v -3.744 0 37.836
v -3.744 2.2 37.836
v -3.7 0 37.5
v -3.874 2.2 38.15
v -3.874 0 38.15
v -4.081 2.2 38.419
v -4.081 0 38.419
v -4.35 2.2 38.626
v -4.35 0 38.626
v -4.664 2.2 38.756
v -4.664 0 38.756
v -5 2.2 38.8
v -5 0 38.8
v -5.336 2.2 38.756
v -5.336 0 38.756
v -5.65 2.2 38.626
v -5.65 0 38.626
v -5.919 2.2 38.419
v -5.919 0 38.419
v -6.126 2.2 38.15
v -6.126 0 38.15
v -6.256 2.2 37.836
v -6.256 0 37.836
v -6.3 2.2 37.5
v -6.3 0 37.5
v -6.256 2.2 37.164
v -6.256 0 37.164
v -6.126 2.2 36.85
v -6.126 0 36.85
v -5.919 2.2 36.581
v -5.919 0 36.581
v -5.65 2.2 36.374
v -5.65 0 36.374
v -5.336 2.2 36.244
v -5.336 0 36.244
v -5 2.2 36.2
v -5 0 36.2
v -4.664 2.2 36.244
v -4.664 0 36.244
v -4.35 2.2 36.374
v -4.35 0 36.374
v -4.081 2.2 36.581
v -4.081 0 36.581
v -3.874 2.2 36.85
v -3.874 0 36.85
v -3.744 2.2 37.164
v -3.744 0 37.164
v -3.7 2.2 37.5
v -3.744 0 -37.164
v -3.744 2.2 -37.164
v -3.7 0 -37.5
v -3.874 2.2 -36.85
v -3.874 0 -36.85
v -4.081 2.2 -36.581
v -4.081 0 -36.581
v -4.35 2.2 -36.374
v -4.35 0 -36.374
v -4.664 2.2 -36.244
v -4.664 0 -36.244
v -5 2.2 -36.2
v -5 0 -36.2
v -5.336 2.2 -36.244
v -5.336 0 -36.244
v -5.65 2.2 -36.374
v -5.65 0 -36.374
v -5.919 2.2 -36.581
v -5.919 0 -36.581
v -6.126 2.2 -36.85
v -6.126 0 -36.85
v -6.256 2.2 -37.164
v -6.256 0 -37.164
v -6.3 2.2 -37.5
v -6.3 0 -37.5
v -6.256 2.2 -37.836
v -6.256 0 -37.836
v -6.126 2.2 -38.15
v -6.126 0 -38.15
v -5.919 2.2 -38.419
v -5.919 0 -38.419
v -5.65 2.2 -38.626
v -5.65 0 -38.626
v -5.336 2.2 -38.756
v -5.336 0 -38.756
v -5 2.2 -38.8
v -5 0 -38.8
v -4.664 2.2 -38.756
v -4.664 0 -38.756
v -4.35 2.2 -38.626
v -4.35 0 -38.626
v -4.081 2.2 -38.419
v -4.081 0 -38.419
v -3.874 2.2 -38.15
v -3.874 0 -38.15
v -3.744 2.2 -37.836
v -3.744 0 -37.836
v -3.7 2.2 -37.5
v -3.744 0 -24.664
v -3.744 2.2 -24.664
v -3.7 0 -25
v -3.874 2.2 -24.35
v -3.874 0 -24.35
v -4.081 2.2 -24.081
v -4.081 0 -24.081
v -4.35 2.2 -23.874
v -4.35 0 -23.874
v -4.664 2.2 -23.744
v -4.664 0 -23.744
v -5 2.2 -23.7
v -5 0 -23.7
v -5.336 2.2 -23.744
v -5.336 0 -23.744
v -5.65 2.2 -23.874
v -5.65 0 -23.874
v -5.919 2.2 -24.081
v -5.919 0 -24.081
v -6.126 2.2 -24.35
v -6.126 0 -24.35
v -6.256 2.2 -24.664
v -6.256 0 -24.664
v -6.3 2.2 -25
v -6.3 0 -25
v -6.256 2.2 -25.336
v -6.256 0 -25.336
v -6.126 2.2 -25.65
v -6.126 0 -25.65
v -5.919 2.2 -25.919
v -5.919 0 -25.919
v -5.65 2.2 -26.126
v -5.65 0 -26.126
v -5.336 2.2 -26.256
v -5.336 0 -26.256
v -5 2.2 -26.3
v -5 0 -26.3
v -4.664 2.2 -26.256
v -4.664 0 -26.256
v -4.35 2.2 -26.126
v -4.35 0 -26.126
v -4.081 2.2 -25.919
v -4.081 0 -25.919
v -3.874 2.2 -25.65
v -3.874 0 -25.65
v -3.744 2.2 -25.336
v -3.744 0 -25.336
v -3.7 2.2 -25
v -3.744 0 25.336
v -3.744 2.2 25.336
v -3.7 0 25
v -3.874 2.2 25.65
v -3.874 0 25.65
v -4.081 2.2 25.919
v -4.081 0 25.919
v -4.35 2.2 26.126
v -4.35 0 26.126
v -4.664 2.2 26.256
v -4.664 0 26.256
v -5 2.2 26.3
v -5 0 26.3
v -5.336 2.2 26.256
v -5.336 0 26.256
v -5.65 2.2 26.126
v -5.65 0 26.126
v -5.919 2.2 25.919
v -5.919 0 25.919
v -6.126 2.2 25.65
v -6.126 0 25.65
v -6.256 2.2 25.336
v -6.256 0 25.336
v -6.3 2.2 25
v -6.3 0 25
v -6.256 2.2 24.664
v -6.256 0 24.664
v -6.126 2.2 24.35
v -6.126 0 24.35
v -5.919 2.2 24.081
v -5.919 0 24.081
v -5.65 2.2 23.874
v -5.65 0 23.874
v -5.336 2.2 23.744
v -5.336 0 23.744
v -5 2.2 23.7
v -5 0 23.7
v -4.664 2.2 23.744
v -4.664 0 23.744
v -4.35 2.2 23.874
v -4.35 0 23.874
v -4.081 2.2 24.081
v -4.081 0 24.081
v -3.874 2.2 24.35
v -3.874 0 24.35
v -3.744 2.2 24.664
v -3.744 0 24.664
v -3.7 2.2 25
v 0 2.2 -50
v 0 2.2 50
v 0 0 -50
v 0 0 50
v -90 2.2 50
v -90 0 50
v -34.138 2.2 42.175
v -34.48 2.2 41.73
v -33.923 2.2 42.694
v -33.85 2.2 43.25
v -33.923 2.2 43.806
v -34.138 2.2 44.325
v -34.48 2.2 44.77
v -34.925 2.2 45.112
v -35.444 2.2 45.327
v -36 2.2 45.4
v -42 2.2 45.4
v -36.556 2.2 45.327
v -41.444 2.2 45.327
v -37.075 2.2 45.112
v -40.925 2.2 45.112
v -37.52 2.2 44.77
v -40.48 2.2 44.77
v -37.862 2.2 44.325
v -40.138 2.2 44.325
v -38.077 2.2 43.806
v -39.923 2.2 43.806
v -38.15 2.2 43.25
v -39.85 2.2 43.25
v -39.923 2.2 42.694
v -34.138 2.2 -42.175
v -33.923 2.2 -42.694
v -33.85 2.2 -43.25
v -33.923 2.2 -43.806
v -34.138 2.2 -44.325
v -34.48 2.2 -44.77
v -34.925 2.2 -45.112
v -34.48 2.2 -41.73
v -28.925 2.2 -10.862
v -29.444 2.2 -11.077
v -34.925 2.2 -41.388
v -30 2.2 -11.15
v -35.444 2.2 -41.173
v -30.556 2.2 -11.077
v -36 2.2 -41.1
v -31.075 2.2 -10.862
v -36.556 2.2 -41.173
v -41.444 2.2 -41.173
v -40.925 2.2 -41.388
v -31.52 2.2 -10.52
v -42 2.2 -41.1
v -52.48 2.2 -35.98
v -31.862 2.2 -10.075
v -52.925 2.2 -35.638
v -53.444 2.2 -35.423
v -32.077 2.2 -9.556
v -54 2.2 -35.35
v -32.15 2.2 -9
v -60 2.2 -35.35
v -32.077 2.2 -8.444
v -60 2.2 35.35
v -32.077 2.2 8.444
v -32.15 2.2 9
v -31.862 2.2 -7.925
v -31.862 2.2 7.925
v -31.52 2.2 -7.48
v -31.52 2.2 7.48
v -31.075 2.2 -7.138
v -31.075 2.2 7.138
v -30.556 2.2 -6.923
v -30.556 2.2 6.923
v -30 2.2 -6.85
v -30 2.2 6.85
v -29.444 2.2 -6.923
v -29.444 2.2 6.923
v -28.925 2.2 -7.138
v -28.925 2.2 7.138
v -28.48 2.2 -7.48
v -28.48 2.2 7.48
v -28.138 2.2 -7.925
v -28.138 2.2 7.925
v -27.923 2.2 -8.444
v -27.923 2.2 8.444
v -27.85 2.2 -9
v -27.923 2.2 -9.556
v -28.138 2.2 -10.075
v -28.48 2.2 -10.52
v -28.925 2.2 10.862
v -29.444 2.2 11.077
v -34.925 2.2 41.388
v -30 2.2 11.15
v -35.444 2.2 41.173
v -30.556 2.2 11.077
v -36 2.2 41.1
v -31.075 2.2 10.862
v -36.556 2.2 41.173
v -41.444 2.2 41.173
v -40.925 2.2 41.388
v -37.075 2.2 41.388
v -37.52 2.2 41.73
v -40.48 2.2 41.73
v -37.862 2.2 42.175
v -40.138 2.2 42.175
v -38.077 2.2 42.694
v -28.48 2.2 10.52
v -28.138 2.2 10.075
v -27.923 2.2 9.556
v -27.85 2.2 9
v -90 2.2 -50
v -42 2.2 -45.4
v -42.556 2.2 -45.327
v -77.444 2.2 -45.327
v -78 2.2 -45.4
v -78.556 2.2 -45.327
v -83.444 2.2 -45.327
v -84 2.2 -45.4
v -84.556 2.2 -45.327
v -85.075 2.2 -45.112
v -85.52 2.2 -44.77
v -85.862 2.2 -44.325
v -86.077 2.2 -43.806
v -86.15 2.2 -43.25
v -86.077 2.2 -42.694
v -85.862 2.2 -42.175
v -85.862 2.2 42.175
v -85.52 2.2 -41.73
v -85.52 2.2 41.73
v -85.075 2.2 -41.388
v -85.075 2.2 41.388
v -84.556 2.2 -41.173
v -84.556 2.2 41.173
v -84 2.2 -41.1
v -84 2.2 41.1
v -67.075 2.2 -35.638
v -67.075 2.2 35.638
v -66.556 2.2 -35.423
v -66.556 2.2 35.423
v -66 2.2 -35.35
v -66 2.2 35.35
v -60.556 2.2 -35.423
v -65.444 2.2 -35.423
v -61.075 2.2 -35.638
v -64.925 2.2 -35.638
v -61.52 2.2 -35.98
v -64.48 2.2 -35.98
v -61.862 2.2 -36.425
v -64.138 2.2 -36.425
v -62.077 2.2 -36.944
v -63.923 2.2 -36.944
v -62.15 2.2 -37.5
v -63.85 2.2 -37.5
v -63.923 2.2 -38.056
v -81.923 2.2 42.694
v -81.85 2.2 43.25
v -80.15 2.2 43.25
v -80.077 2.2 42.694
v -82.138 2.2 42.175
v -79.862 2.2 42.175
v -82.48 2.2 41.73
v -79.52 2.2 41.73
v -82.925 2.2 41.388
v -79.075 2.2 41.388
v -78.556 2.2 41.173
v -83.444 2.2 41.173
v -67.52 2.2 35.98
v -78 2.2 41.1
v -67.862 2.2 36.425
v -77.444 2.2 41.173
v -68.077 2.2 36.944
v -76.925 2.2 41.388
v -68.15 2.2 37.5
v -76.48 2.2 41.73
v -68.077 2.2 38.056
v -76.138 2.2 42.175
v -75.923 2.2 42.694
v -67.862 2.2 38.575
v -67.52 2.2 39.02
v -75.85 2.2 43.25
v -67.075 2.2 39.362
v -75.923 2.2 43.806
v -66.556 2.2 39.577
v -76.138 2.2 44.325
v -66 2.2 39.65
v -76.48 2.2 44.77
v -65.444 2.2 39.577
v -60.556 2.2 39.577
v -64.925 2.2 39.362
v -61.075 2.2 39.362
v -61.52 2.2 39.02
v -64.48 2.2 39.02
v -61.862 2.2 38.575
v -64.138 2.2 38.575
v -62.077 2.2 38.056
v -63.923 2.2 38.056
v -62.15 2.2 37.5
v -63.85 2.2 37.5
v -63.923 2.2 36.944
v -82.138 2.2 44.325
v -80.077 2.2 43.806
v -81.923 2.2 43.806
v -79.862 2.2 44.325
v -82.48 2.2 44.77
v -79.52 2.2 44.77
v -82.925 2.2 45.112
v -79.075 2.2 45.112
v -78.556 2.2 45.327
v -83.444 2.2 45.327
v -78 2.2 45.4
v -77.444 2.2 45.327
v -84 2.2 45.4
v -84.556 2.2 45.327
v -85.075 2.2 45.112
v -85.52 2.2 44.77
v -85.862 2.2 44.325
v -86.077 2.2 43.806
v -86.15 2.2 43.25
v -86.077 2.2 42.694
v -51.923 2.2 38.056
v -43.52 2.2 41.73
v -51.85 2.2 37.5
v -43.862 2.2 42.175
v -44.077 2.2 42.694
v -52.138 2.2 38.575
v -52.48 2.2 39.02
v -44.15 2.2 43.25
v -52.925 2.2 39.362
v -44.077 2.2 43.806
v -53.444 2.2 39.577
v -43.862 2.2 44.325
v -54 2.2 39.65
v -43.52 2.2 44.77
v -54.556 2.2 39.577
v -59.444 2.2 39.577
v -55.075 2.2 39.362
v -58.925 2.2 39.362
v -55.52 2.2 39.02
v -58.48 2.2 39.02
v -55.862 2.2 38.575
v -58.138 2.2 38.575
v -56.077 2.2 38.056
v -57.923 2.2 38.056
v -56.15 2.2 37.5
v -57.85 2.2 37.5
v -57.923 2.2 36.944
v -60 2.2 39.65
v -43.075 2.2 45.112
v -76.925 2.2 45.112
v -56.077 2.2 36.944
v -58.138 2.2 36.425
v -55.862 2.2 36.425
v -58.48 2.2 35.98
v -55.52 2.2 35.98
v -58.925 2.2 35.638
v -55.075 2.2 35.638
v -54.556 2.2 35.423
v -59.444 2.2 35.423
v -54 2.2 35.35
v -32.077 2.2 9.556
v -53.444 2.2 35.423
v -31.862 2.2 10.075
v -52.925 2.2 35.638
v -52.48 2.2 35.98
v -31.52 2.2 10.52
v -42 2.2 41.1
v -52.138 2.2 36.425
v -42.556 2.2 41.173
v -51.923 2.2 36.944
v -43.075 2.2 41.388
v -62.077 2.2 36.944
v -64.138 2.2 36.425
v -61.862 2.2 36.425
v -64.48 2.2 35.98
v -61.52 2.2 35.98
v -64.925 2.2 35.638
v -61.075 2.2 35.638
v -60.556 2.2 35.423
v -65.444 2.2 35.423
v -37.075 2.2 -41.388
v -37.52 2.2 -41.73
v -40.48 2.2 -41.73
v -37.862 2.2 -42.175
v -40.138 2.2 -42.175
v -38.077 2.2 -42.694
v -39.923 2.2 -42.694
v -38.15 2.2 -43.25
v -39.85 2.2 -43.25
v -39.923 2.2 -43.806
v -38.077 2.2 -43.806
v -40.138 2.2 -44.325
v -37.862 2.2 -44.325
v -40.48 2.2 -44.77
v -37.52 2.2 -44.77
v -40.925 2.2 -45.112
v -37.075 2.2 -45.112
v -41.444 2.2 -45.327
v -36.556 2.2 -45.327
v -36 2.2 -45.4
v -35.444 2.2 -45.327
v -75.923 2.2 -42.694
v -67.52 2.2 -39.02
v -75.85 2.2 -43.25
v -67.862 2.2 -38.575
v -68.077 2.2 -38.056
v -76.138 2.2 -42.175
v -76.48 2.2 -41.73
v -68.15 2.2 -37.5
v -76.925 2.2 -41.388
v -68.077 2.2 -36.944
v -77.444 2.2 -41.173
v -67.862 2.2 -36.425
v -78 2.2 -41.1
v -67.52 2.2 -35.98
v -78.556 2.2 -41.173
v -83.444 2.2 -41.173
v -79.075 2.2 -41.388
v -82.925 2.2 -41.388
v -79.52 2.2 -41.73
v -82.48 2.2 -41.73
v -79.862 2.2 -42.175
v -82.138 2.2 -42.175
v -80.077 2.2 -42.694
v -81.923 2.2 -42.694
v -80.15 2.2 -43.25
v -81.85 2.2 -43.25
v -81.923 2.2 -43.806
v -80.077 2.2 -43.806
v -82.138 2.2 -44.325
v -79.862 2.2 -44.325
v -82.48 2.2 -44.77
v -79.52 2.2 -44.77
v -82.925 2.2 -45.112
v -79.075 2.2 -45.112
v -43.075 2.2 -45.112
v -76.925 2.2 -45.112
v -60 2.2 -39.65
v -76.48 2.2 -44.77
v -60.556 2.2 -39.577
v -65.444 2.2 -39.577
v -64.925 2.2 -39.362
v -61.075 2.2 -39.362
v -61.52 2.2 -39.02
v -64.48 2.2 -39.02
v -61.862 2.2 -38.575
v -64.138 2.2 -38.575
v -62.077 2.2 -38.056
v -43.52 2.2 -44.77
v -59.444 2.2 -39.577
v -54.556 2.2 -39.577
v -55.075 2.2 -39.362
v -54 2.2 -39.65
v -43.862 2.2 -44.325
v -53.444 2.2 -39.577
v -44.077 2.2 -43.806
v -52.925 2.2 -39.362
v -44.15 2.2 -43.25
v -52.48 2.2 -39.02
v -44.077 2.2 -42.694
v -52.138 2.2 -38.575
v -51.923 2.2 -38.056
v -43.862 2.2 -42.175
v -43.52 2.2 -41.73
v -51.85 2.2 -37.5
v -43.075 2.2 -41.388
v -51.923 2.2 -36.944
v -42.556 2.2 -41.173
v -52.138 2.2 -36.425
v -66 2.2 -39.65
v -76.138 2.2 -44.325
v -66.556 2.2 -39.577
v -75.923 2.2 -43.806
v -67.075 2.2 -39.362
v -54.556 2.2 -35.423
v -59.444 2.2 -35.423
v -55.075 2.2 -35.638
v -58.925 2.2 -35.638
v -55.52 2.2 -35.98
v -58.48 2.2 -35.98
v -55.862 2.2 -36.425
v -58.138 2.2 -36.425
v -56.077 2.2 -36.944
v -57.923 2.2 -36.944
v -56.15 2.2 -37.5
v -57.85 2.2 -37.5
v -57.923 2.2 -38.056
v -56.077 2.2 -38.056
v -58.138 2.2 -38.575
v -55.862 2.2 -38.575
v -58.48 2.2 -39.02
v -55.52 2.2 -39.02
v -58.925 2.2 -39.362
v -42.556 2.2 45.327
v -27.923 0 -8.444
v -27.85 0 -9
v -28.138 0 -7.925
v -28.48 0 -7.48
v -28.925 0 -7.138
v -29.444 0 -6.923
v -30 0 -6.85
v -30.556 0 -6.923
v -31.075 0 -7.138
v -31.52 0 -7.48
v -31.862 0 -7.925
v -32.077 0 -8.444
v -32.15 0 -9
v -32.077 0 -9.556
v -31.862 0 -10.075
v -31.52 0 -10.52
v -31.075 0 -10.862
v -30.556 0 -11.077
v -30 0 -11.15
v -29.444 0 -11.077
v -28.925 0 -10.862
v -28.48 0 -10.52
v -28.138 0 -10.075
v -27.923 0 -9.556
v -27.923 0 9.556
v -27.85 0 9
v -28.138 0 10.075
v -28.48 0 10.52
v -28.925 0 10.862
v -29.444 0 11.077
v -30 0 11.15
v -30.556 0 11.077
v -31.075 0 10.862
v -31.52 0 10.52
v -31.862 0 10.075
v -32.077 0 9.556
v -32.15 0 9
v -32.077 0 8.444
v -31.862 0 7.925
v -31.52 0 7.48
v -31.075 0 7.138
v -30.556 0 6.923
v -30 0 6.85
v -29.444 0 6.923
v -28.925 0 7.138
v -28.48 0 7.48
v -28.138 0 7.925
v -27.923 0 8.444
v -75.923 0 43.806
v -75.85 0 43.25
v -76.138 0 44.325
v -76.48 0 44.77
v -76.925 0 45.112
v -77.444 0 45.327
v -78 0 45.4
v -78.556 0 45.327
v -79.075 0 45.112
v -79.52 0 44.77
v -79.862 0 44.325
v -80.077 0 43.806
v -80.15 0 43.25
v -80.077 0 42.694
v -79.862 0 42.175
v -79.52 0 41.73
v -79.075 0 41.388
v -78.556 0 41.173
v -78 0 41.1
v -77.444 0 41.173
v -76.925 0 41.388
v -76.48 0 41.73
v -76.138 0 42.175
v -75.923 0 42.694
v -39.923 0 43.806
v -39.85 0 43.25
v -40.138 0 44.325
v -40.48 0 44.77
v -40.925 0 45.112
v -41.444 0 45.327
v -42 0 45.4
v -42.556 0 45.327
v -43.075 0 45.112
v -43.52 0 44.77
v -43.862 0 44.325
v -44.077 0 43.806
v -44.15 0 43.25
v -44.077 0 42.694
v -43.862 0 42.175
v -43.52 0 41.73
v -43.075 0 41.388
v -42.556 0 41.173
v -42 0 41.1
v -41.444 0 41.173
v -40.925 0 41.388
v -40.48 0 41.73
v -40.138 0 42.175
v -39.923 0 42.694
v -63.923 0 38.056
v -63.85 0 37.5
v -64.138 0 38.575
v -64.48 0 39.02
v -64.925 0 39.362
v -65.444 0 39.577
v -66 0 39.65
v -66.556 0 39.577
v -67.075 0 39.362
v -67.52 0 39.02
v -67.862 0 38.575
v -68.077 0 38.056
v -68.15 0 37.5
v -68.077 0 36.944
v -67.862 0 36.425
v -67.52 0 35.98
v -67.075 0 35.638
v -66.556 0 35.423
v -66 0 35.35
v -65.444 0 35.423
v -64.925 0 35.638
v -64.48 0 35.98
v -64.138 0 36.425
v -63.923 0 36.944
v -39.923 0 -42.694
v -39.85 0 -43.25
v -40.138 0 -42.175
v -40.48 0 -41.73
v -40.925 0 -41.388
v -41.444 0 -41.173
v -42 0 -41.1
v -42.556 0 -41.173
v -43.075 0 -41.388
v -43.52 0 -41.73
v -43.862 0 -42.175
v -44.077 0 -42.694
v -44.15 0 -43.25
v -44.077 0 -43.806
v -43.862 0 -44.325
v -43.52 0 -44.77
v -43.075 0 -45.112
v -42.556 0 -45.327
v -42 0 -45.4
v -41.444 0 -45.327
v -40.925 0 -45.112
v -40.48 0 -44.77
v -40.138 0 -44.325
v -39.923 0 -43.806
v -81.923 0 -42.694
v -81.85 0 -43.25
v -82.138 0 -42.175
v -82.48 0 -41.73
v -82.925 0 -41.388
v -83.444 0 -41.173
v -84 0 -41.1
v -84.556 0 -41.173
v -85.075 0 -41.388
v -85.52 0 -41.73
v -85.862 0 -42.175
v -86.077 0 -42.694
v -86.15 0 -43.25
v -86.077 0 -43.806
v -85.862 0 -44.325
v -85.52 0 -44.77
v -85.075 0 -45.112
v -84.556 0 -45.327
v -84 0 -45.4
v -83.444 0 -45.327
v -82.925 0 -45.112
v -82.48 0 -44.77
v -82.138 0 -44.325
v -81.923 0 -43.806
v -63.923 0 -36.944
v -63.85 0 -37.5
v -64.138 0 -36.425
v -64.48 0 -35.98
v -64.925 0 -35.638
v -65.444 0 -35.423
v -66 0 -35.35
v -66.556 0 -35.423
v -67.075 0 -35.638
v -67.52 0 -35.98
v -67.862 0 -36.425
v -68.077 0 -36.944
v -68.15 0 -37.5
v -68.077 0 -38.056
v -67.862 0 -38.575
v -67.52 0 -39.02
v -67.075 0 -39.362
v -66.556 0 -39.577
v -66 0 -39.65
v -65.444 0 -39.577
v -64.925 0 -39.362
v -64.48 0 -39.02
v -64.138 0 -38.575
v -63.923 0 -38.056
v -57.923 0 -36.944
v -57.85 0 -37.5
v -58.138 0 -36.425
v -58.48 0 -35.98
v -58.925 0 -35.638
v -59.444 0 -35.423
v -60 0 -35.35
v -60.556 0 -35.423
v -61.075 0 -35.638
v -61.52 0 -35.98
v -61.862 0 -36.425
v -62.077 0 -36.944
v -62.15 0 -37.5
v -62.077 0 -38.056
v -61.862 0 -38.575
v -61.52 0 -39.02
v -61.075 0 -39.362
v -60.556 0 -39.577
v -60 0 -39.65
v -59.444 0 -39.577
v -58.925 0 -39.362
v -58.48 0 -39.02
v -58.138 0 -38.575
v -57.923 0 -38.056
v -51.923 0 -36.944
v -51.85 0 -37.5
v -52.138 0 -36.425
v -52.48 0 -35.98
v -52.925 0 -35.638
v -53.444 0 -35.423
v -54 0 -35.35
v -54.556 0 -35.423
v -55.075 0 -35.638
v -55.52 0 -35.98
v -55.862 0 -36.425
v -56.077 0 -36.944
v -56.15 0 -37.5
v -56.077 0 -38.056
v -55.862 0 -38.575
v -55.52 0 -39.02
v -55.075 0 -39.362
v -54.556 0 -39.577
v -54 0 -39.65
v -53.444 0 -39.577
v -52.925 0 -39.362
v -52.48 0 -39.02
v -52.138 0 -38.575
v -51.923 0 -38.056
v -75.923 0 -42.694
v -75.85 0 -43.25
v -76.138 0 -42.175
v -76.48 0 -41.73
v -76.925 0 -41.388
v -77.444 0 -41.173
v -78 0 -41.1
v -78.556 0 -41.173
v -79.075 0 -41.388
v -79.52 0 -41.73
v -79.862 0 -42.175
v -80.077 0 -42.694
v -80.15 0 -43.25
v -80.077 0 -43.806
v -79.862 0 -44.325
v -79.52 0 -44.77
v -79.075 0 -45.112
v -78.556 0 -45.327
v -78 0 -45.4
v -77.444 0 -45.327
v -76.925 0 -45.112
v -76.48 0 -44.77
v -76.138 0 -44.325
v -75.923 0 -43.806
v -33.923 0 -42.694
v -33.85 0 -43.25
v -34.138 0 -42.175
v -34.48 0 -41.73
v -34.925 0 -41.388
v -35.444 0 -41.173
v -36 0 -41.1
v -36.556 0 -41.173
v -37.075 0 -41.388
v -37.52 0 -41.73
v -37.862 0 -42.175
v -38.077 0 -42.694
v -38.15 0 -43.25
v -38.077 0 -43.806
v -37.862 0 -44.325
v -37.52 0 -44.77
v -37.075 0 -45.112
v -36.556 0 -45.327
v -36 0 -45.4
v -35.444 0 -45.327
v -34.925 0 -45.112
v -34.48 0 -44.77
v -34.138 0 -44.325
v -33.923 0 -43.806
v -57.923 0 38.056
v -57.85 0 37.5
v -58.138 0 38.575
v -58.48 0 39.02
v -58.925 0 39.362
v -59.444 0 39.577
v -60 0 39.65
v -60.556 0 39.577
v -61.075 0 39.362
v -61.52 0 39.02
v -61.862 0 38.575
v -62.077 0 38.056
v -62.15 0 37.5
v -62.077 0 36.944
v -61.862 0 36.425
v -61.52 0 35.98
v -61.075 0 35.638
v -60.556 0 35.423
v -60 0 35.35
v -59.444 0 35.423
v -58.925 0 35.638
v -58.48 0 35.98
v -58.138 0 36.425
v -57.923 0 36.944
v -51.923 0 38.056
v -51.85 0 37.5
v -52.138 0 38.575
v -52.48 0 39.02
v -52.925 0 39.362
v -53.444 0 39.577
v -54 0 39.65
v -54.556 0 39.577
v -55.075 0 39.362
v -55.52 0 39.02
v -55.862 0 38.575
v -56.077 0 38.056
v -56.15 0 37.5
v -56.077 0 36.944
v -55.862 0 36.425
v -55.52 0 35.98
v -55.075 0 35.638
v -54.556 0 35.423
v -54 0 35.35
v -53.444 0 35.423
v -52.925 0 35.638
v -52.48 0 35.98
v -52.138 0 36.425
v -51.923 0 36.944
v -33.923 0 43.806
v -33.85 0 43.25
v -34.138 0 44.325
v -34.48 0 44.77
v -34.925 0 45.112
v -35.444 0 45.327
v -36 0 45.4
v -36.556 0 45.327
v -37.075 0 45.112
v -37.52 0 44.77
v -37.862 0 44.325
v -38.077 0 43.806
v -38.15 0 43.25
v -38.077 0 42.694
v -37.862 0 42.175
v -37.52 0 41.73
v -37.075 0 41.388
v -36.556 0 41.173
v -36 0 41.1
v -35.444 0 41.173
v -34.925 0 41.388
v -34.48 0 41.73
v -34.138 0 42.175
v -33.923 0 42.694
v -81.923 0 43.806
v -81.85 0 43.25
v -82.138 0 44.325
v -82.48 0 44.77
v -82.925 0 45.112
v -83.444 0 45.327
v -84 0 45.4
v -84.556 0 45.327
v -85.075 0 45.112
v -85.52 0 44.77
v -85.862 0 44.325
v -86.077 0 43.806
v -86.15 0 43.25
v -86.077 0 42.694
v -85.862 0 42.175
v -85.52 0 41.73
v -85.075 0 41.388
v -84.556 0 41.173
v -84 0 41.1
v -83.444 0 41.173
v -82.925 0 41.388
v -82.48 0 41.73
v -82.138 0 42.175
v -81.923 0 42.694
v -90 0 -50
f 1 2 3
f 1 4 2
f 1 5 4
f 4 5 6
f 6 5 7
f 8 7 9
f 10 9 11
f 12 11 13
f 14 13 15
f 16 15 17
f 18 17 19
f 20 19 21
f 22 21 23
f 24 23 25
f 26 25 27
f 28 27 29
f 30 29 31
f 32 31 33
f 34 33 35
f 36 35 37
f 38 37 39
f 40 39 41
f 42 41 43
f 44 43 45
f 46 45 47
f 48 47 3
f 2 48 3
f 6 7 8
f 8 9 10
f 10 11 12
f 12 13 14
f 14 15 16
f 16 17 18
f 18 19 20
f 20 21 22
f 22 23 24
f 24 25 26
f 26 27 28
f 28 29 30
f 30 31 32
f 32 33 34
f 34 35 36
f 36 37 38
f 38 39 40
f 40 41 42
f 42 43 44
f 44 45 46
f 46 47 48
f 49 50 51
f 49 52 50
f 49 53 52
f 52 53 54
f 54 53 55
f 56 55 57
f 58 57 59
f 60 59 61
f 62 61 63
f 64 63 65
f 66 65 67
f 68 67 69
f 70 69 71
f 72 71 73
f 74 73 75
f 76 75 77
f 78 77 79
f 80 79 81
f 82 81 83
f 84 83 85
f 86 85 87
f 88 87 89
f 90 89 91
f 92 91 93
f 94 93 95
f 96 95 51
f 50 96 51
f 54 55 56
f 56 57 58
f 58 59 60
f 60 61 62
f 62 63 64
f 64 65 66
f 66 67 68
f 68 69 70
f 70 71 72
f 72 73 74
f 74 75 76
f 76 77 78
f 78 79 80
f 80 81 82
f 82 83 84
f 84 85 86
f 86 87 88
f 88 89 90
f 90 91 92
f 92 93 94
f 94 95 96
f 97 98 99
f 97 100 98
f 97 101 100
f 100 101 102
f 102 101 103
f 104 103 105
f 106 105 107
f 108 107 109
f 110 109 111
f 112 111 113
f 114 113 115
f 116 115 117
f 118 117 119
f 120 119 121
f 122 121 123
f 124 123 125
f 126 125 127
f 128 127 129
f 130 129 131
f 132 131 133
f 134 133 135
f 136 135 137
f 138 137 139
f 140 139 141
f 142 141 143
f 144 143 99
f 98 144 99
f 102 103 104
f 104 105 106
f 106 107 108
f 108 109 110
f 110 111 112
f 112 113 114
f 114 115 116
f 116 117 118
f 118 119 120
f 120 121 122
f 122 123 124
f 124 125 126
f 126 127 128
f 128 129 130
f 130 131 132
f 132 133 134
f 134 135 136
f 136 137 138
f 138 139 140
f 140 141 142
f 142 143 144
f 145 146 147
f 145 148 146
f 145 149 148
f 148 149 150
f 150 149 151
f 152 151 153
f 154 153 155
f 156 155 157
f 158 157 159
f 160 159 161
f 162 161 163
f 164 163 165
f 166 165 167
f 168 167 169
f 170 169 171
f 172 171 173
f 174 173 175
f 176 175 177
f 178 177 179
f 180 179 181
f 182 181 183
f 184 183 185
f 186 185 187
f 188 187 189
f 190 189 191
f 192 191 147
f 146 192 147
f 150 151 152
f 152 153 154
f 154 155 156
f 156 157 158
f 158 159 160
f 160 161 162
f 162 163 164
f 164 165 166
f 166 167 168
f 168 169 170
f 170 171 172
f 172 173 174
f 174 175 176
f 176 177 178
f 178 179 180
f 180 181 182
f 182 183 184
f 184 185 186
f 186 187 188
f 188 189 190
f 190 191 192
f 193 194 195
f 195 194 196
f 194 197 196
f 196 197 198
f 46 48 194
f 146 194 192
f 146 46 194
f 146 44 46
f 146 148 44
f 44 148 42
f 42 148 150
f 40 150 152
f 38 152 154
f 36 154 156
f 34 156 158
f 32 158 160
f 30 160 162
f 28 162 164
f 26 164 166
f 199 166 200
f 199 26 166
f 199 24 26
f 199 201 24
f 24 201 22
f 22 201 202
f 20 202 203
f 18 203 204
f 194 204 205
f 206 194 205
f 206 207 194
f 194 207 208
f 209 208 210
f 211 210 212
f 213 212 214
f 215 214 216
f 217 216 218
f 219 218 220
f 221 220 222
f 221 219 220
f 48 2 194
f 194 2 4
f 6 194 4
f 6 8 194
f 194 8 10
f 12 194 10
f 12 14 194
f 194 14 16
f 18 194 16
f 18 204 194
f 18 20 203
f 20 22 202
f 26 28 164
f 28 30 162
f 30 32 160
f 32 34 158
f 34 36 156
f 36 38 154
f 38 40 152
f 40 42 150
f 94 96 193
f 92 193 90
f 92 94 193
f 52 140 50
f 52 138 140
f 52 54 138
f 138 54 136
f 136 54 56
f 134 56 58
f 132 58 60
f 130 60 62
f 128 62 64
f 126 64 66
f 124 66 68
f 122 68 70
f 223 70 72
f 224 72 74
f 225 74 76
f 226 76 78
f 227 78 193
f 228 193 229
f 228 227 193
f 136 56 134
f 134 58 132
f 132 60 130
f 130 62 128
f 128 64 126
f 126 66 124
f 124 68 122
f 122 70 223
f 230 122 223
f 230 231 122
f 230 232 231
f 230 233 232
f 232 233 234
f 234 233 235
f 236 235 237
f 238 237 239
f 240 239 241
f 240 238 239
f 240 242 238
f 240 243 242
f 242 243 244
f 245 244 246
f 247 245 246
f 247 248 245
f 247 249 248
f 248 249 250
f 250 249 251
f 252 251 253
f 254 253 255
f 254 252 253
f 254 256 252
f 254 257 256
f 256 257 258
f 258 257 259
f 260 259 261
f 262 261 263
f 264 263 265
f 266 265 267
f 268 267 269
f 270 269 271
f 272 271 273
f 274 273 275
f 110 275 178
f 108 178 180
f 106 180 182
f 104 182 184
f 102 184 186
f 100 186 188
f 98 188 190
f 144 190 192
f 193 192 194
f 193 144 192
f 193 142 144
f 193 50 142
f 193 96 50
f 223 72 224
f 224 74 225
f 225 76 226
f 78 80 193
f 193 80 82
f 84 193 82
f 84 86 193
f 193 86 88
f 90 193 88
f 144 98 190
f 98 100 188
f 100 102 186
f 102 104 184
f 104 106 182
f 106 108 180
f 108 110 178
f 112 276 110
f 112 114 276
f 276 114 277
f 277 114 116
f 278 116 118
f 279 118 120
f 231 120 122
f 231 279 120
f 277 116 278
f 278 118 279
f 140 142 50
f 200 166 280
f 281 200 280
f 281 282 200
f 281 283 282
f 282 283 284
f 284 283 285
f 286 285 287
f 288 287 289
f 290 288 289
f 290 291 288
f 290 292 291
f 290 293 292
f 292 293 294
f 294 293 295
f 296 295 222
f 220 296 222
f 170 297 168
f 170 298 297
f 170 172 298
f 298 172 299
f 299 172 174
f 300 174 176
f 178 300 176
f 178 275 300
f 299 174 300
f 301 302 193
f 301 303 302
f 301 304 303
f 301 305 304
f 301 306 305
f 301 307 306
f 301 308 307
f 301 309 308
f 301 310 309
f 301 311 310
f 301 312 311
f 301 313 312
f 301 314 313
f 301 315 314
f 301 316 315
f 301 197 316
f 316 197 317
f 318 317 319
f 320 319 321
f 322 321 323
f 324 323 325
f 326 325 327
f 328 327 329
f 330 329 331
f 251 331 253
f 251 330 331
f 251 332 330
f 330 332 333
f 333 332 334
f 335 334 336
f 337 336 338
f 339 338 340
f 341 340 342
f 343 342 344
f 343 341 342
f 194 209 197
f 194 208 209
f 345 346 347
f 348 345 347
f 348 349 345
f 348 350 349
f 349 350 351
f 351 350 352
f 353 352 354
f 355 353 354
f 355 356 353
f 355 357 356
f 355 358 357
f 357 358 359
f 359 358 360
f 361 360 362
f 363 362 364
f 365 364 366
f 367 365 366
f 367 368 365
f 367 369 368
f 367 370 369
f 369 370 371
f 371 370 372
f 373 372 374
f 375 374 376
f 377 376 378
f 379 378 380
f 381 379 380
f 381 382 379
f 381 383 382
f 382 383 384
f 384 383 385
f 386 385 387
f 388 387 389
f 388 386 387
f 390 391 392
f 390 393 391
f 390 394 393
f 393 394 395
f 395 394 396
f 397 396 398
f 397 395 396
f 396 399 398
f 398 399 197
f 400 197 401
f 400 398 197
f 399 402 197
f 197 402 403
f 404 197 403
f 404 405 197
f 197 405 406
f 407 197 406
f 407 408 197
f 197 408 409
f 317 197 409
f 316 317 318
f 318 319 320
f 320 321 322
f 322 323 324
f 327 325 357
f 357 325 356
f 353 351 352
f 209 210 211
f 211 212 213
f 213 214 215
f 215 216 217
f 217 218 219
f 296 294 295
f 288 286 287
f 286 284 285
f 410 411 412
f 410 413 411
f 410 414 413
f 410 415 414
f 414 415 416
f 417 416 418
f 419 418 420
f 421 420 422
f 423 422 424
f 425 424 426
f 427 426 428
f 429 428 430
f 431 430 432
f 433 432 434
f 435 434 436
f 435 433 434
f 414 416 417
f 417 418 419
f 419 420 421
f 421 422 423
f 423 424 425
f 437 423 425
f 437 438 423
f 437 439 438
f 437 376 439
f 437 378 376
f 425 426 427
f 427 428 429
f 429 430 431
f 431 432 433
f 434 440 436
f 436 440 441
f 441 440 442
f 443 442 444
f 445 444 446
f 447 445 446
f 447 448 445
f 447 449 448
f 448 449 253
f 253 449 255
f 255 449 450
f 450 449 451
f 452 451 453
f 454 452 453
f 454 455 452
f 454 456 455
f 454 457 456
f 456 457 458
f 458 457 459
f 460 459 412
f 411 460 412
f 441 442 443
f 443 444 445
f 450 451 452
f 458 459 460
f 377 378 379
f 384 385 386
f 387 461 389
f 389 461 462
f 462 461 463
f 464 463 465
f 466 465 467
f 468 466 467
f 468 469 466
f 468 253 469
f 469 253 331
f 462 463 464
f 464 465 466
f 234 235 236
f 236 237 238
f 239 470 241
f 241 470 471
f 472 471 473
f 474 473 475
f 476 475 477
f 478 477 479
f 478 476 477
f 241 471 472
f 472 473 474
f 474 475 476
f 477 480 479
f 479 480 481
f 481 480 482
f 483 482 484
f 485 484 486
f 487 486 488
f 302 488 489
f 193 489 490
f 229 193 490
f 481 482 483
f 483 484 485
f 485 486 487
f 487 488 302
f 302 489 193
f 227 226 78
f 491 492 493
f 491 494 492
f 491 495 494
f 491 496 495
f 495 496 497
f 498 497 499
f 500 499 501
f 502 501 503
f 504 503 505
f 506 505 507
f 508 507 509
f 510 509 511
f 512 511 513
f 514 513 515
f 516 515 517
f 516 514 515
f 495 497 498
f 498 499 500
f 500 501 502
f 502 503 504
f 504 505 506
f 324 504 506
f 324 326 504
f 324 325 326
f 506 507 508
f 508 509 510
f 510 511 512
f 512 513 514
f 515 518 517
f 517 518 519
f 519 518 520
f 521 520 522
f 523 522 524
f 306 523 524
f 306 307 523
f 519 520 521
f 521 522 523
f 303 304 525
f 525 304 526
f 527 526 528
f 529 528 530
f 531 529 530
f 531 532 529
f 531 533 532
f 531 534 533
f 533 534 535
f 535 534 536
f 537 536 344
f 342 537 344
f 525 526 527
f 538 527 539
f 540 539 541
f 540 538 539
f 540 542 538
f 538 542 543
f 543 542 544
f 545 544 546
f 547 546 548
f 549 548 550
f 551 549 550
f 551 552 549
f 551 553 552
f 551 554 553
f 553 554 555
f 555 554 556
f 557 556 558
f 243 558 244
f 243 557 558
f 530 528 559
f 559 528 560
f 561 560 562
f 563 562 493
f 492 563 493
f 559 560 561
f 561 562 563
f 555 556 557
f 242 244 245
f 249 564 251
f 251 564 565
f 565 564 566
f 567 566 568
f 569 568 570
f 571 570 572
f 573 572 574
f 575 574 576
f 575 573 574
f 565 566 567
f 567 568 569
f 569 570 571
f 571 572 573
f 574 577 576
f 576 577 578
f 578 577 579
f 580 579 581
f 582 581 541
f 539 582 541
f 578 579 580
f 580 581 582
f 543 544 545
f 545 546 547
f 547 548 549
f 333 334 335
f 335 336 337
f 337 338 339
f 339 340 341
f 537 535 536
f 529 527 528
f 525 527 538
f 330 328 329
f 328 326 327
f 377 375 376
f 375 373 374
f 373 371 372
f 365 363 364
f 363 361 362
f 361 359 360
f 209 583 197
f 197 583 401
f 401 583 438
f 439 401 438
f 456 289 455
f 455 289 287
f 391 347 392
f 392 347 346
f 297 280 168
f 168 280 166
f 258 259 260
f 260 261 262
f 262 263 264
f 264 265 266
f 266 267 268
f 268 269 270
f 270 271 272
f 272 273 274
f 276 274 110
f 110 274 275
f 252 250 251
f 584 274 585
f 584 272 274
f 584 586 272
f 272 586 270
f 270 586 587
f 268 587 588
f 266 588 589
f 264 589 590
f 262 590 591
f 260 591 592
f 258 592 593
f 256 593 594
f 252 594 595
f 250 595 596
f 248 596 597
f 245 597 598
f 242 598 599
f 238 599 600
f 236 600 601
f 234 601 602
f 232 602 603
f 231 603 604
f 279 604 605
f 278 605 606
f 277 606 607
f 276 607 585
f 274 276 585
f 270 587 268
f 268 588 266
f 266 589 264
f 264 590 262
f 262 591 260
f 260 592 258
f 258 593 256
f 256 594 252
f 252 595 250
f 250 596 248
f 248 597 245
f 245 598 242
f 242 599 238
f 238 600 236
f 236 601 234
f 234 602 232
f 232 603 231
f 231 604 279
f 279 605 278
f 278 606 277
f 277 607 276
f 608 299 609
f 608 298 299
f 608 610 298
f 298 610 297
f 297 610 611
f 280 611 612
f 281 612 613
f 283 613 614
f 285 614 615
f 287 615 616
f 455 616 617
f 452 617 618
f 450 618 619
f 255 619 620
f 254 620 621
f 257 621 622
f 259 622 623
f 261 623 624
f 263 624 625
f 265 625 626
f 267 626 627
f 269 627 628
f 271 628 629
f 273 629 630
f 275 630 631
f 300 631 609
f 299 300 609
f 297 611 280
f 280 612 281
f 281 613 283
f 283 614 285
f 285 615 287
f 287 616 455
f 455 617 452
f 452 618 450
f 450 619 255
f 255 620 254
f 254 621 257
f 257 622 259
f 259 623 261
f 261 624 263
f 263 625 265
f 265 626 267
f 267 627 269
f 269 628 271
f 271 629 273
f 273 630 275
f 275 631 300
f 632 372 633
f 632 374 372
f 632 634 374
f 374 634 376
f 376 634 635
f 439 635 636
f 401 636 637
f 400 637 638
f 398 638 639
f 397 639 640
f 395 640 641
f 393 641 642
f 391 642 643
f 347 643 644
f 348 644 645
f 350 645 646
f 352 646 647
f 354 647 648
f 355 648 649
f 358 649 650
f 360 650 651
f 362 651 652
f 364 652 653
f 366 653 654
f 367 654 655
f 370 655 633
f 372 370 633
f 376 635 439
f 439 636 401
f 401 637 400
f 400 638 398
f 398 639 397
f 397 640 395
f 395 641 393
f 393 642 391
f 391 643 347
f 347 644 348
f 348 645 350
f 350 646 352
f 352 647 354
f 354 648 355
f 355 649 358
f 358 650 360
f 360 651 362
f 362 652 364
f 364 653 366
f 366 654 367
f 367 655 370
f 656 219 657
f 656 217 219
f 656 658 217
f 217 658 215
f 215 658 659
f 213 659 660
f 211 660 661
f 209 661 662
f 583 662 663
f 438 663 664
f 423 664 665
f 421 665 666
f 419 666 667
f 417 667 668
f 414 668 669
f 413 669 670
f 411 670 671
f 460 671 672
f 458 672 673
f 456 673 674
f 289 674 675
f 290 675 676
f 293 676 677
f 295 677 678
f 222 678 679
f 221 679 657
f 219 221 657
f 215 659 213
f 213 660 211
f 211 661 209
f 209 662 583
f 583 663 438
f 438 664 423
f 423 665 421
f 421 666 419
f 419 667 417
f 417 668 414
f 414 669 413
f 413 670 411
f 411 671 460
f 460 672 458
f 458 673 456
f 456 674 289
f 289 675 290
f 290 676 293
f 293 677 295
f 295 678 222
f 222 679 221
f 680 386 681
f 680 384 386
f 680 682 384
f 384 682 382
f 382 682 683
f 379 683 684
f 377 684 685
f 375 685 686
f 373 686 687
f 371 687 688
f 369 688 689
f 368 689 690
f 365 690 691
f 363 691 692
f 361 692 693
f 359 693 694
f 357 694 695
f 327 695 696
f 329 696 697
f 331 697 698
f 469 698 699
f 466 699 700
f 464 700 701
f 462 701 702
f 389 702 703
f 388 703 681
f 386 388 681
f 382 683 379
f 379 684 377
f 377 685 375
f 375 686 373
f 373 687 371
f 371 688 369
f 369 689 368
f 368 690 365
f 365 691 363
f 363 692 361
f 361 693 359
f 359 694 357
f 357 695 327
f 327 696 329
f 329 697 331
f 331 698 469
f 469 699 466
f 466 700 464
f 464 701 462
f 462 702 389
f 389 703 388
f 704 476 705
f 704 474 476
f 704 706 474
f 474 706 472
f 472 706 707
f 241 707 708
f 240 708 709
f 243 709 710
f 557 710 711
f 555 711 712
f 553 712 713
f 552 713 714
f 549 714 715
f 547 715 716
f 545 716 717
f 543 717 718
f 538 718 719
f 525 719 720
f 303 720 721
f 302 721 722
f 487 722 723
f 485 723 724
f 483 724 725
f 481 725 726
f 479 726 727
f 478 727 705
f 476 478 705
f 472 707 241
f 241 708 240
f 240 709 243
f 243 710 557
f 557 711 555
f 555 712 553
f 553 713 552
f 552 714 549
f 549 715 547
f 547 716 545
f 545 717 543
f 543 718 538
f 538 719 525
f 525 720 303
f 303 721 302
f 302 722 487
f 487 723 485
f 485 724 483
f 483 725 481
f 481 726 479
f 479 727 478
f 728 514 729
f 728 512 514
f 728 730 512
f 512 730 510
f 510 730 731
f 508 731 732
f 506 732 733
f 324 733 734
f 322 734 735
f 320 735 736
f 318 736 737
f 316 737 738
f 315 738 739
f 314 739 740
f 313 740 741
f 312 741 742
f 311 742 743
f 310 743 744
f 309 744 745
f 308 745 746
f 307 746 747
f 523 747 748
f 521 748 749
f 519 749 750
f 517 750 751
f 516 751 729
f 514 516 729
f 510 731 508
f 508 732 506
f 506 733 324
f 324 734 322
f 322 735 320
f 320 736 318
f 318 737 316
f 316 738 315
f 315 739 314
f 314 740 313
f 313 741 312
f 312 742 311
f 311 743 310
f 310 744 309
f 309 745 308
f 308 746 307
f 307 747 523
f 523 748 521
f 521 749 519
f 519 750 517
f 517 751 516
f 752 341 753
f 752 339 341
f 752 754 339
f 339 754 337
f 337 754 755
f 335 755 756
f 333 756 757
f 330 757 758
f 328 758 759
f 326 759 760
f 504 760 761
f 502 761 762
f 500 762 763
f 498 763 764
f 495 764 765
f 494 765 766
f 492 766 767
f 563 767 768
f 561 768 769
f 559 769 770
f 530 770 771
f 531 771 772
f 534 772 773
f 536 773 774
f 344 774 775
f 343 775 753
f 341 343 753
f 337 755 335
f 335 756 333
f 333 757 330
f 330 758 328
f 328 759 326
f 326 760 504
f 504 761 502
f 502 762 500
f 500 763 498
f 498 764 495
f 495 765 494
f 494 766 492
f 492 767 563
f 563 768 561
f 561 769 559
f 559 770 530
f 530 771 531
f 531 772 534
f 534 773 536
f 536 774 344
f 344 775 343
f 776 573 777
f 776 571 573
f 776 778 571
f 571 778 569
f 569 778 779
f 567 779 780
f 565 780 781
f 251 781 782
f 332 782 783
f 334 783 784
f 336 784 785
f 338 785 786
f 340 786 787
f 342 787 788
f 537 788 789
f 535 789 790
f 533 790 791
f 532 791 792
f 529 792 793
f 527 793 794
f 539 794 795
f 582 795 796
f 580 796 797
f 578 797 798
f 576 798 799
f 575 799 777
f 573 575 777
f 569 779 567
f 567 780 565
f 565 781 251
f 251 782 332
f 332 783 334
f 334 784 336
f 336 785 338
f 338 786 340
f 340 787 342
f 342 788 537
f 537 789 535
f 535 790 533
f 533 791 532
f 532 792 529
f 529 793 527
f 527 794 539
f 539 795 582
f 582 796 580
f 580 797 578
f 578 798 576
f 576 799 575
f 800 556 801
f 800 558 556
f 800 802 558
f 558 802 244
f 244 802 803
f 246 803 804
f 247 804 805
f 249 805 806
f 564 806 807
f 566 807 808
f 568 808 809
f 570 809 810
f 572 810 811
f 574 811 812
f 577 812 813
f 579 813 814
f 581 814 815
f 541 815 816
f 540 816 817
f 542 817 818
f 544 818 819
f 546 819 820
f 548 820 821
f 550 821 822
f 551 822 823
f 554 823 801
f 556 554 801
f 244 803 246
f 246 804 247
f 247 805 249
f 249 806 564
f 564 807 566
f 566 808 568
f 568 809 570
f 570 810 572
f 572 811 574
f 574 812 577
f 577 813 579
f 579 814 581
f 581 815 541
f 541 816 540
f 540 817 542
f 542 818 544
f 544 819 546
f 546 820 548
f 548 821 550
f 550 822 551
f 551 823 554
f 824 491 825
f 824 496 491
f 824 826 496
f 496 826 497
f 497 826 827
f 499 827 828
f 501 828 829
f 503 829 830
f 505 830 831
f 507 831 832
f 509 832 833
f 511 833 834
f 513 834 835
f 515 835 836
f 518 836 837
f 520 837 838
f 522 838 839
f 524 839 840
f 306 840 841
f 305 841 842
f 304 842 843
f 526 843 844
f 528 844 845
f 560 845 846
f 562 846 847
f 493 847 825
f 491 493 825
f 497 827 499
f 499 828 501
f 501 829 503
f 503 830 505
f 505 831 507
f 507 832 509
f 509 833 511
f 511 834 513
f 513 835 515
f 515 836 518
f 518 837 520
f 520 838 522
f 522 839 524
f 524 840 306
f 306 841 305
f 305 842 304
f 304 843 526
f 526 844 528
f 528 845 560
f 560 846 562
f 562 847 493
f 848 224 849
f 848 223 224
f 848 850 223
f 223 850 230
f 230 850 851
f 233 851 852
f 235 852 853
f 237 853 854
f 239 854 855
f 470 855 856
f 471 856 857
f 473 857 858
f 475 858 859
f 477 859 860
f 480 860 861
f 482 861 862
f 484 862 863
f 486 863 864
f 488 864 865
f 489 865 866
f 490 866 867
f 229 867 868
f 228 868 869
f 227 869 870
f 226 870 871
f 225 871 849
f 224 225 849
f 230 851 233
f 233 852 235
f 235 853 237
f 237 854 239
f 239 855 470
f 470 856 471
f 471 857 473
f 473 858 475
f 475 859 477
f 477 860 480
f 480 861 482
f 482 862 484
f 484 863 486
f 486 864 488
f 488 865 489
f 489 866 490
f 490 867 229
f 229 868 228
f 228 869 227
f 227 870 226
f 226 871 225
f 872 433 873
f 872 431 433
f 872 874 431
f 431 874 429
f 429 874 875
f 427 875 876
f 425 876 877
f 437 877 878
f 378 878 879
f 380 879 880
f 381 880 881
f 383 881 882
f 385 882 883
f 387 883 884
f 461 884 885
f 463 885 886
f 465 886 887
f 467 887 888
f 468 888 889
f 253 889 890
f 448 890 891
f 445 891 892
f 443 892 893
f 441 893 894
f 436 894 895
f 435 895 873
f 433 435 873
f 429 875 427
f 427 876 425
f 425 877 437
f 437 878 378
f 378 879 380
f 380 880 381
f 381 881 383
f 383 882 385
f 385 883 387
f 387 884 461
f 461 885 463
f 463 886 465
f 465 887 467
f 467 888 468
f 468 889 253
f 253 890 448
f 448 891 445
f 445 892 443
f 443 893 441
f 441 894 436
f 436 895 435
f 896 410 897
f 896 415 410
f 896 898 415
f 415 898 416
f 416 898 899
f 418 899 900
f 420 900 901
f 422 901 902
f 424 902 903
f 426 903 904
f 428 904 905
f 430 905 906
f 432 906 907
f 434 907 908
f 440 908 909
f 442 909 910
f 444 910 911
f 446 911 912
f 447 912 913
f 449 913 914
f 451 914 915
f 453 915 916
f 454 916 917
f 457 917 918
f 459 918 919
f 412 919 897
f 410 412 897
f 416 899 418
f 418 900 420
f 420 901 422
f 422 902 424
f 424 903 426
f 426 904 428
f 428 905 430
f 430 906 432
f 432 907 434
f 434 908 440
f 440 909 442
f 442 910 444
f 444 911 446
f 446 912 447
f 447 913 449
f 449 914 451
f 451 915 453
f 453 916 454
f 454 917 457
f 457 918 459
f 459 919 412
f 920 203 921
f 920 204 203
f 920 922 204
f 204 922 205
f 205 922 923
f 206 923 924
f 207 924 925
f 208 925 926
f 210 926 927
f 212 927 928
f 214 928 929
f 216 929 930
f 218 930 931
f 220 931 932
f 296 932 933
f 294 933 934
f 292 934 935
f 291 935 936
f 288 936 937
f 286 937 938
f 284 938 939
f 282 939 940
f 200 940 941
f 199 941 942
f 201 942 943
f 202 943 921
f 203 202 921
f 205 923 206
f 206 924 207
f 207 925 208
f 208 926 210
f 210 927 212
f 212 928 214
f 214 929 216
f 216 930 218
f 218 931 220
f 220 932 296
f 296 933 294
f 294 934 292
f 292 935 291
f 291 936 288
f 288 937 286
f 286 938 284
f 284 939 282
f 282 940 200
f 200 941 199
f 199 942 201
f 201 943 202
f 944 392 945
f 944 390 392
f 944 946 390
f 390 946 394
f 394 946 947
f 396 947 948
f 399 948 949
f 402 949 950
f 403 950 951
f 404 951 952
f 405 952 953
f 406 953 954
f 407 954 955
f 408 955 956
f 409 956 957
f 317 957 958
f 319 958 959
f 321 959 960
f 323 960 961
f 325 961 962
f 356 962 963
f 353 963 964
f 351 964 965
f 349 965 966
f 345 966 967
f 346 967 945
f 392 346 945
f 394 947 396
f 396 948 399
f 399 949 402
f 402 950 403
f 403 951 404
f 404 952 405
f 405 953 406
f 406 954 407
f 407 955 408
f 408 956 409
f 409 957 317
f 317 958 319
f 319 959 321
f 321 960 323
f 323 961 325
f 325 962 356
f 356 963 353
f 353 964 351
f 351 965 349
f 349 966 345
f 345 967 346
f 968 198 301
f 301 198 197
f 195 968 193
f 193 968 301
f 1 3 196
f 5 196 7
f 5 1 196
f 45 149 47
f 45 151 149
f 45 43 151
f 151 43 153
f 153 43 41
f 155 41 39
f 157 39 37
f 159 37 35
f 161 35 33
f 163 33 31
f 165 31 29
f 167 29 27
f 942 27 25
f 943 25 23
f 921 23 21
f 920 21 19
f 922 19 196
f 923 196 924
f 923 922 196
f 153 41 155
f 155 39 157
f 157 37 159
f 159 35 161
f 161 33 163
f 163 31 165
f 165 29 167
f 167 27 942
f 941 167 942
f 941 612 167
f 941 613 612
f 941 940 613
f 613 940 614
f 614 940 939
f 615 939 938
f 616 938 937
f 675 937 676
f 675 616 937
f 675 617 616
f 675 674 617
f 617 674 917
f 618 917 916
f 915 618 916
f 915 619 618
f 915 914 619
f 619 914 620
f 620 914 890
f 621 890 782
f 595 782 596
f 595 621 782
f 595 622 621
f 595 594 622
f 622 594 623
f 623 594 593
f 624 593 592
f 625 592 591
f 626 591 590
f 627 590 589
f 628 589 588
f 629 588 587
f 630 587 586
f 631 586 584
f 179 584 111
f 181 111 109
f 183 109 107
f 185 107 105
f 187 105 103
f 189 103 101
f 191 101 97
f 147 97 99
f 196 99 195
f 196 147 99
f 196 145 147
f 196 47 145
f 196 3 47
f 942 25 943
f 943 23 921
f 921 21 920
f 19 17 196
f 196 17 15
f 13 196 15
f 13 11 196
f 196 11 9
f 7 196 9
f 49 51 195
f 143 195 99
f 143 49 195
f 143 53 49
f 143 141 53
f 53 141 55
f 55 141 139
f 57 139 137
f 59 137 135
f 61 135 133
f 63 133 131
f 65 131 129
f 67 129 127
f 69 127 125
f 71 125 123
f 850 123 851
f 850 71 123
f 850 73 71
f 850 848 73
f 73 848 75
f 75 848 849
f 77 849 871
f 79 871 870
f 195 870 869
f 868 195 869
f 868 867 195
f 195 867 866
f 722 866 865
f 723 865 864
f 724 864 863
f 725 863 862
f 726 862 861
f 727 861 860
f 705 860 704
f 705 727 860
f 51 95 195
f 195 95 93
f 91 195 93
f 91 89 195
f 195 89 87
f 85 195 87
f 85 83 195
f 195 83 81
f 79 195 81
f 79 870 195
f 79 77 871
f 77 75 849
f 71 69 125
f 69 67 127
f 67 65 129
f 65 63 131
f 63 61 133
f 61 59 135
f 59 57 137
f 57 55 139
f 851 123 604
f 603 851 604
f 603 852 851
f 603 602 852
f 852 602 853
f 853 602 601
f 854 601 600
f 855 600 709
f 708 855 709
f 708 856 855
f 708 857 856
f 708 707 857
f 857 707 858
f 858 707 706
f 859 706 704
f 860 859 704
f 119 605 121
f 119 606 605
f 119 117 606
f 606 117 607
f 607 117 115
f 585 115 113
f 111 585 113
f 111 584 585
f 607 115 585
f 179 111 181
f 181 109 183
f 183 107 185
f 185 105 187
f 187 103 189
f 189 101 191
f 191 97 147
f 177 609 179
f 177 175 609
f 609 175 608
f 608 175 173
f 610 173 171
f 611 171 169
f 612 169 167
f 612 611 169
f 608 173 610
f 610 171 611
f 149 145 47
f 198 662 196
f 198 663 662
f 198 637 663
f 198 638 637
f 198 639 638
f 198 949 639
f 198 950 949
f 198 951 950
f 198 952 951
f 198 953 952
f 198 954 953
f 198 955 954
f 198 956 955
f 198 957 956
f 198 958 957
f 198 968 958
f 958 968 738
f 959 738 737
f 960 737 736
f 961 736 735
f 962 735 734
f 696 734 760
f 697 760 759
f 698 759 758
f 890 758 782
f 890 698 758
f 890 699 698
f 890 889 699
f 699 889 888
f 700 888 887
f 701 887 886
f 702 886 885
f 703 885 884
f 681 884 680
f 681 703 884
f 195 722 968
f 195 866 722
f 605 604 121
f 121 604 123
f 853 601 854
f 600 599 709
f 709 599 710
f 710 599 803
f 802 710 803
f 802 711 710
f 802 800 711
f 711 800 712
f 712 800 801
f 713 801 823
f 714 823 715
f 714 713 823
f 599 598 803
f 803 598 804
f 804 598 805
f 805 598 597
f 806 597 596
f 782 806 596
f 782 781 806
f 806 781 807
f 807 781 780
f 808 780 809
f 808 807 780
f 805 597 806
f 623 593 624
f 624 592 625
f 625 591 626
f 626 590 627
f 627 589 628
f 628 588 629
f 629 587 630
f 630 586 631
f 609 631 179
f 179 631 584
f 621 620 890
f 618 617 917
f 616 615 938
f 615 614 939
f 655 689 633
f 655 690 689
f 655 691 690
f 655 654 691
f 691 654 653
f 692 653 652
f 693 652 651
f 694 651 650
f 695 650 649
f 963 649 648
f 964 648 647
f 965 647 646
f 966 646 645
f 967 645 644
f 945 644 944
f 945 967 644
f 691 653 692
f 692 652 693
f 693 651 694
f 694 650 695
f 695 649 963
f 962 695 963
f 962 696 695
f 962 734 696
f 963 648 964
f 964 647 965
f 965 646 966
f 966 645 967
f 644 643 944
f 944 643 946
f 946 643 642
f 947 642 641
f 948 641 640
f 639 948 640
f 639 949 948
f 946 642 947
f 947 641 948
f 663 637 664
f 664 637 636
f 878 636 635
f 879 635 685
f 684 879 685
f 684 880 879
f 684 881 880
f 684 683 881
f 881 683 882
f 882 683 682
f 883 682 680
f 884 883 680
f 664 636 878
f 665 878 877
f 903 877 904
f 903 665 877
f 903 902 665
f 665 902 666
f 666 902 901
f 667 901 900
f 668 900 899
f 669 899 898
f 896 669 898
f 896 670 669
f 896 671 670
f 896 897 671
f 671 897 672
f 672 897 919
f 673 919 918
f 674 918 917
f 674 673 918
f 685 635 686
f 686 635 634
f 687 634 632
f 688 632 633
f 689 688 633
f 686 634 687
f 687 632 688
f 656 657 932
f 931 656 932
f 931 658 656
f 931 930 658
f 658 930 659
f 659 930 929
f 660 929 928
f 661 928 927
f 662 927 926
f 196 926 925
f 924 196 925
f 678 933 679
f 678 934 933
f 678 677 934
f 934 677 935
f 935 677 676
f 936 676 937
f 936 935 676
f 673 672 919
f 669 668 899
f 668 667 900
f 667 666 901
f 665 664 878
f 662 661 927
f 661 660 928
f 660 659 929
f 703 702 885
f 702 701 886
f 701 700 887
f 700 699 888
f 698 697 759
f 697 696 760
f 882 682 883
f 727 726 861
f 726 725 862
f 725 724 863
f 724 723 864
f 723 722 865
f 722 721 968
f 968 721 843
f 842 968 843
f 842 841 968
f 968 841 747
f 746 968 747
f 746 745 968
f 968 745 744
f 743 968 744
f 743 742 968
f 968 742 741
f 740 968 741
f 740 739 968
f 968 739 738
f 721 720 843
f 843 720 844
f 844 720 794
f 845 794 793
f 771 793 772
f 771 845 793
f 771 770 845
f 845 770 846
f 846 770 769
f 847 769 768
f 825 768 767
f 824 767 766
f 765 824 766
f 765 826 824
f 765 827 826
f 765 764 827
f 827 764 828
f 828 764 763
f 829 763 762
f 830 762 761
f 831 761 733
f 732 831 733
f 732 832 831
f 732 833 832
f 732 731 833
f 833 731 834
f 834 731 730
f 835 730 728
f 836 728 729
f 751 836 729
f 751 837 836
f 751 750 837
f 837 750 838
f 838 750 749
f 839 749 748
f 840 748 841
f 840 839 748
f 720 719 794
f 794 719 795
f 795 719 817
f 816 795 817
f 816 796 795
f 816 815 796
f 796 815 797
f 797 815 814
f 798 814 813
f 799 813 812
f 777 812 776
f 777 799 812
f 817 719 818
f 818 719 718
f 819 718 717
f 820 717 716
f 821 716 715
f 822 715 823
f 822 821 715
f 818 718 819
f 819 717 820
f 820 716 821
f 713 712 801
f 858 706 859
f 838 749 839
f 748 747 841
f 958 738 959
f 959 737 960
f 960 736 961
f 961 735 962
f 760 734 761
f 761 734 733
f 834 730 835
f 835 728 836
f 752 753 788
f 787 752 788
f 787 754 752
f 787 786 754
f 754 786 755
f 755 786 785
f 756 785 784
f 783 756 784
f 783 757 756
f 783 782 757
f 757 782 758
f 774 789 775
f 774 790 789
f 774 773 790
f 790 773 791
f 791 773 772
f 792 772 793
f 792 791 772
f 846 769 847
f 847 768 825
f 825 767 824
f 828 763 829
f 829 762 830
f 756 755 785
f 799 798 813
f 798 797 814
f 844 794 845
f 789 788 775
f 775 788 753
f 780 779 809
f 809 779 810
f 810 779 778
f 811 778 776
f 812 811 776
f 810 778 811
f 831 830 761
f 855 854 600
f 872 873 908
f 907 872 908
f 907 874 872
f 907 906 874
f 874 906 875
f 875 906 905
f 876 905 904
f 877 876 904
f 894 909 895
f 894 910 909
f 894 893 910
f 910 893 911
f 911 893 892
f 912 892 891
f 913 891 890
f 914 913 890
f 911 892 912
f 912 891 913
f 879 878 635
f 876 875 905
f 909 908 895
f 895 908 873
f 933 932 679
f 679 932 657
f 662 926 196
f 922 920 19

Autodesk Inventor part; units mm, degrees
ref_plane "YZ Plane" through (0, 0, 0) normal (1, 0, 0) x (0, 1, 0)
ref_plane "XZ Plane" through (0, 0, 0) normal (0, 1, 0) x (-1, 0, 0)
ref_plane "XY Plane" through (0, 0, 0) normal (0, 0, 1) x (1, 0, 0)
sketch "Sketch1" plane through (0, 0, 0) normal (0, 1, 0) x (-1, 0, 0)
  line L0 (90, -50) -> (-90, -50)
  line L1 (-90, -50) -> (-90, 50)
  line L2 (-90, 50) -> (90, 50)
  line L3 (90, 50) -> (90, -50)
  line L4 (0, 0) -> (0, -16.1308) construction
  line L5 (0, 0) -> (18.4922, 0) construction
  dimension "d1" = 100
  dimension "d2" = 180
extrude "Extrusion1" add sketch "Sketch1" along normal blind 2.2
sketch "Sketch2" plane through (0, 2.2, 0) normal (0, 1, 0) x (1, 0, 0)
  line L0 (-90, -50) -> (90, -50) projected
  line L1 (90, -50) -> (90, 50) projected
  line L2 (90, -50) -> (90, -30)
  line L3 (90, -30) -> (55.6, -30)
  line L4 (55.6, -30) -> (55.6, -50)
  line L5 (55.6, -50) -> (90, -50)
  line L6 (90, -40) -> (55.6, -40) construction
  circle A0 centre (78.8, -40) radius 2.15
  circle A1 centre (72.8, -40) radius 2.15
  circle A2 centre (66.8, -40) radius 2.15
  line L7 (72.8, -40) -> (72.8, -30) construction
  circle A3 centre (72.8, -34) radius 2.15
  circle A4 centre (72.8, -46) radius 2.15
  circle A5 centre (72.8, -40) radius 2.15
  line L8 (0, 0) -> (96.2626, 0) construction
  line L9 (90, 50) -> (90, 30)
  line L10 (90, 30) -> (55.6, 30)
  line L11 (55.6, 30) -> (55.6, 50)
  line L12 (55.6, 50) -> (90, 50)
  line L13 (90, 40) -> (55.6, 40) construction
  circle A6 centre (78.8, 40) radius 2.15
  circle A7 centre (72.8, 40) radius 2.15
  circle A8 centre (66.8, 40) radius 2.15
  line L14 (72.8, 40) -> (72.8, 30) construction
  circle A9 centre (72.8, 34) radius 2.15
  circle A10 centre (72.8, 46) radius 2.15
  circle A11 centre (72.8, 40) radius 2.15
  line L15 (90, 50) -> (-90, 50) projected
  line L16 (-90, 50) -> (-90, -50) projected
  line L17 (-48, 40) -> (-72, 40)
  line L18 (-72, 40) -> (-72, 50)
  line L19 (-72, 50) -> (-48, 50)
  line L20 (-48, 50) -> (-48, 40)
  line L21 (-74.3246, 46.5) -> (-4.1674, 46.5) construction
  line L22 (-60, 53.3324) -> (-60, 32.9187) construction
  circle A12 centre (-60, 37.5) radius 2.15
  line L23 (-68.3246, 46.5) -> (1.8326, 46.5) construction
  circle A13 centre (-54, 37.5) radius 2.15
  circle A14 centre (-66, 37.5) radius 2.15
  line L24 (-8.0003, 43.25) -> (-83.9137, 43.25) construction
  circle A15 centre (-78, 43.25) radius 2.15
  circle A16 centre (-84, 43.25) radius 2.15
  circle A17 centre (-42, 43.25) radius 2.15
  circle A18 centre (-36, 43.25) radius 2.15
  line L25 (-48, -40) -> (-72, -40)
  line L26 (-72, -40) -> (-72, -50)
  line L27 (-72, -50) -> (-48, -50)
  line L28 (-48, -50) -> (-48, -40)
  line L29 (-74.3246, -46.5) -> (-4.1674, -46.5) construction
  line L30 (-60, -53.3324) -> (-60, -32.9187) construction
  circle A19 centre (-60, -37.5) radius 2.15
  circle A20 centre (-54, -37.5) radius 2.15
  circle A21 centre (-66, -37.5) radius 2.15
  line L31 (-8.0003, -43.25) -> (-83.9137, -43.25) construction
  circle A22 centre (-78, -43.25) radius 2.15
  circle A23 centre (-84, -43.25) radius 2.15
  circle A24 centre (-36, -43.25) radius 2.15
  circle A25 centre (-42, -43.25) radius 2.15
  circle A26 centre (-60, 37.5) radius 2.5 construction
  dimension "d13" = 20
  dimension "d14" = 34.4
  dimension "d15" = 4.3
  dimension "d16" = 6
  dimension "d17" = 6
  dimension "d18" = 6
  dimension "d27" = 24
  dimension "d28" = 10
  dimension "d29" = 18
  dimension "d31" = 4.3
  dimension "d34" = 6
  dimension "d41" = 6
  dimension "d46" = 6.5
  dimension "d48" = 4.3
  dimension "d49" = 6
  dimension "d52" = 6
  dimension "d60" = 5
extrude "Holes" cut sketch "Sketch2" against normal through all contours A0 | A1 | A2 | A3 | A4 | A6 | A7 | A8 | A9 | A10 | A12 | A13 | A14 | A15 | A16 | A17 | A18 | A19 | A20 | A21 | A22 | A23 | A24 | A25
sketch "Sketch3" plane through (0, 2.2, 0) normal (0, 1, 0) x (1, 0, 0)
  line L0 (33.5, 13.5) -> (-33.5, 13.5) construction
  line L1 (-33.5, 13.5) -> (-33.5, -13.5) construction
  line L2 (-33.5, -13.5) -> (33.5, -13.5) construction
  line L3 (33.5, -13.5) -> (33.5, 13.5) construction
  line L4 (0, 0) -> (39.98, 0) construction
  line L5 (0, 0) -> (0, 21.0122) construction
  circle A0 centre (30, 9) radius 2.15
  circle A1 centre (30, -9) radius 2.15
  circle A2 centre (-30, 9) radius 2.15
  circle A3 centre (-30, -9) radius 2.15
  line L6 (33.5, 7.5) -> (43.5, 7.5)
  line L7 (43.5, 7.5) -> (43.5, -7.5)
  line L8 (43.5, -7.5) -> (33.5, -7.5)
  line L9 (33.5, -7.5) -> (33.5, 7.5)
  dimension "d61" = 67
  dimension "d62" = 27
  dimension "d63" = 4.3
  dimension "d64" = 3.5
  dimension "d65" = 4.5
  dimension "d68" = 10
  dimension "d69" = 15
extrude "Extrusion4" cut sketch "Sketch3" against normal through all
fillet "Fillet1" radius 2 4 edges at (33.5, 1.1, -7.5) (43.5, 1.1, -7.5) (43.5, 1.1, 7.5) (33.5, 1.1, 7.5)
ref_plane "Work Plane1" through (0, 0, 50) normal (1, 0, 0) x (0, 0, -1)
split "Split1" plane through (0, 0, 50) removes the side toward (1, 0, 0)
sketch "Sketch4" plane through (0, 2.2, 0) normal (0, 1, 0) x (1, 0, 0)
  line L0 (0, 50) -> (-90, 50) projected
  line L1 (-90, -50) -> (0, -50) projected
  line L2 (0, 50) -> (-5, 50) construction
  line L3 (-5, 50) -> (-5, -50) construction
  line L4 (-5, -50) -> (0, -50) construction
  line L5 (0, -50) -> (0, 50) construction
  line L6 (0, 0) -> (-126.431, 0) construction
  circle A0 centre (-5, 37.5) radius 1.3
  circle A1 centre (-5, 25) radius 1.3
  circle A2 centre (-5, -37.5) radius 1.3
  circle A3 centre (-5, -25) radius 1.3
  dimension "d71" = 5
  dimension "d72" = 2.6
  dimension "d73" = 12.5
  dimension "d76" = 12.5
extrude "Extrusion5" cut sketch "Sketch4" against normal through all
equation "\"d1\" = BodyWidth"
equation "\"d2\" = BodyLength"
equation "\"d3\" = Depth"
equation "\"d15\" = Holes"
equation "\"d27\" = MotorWidth"
equation "\"d31\" = Holes"
equation "\"d57\" = Depth"
equation "\"d73\" = 0.125 * BodyWidth"
equation "\"d76\" = 0.125 * BodyWidth"
equation "\"BodyWidth\" = 100"
equation "\"BodyLength\" = 180"
equation "\"Holes\" = 4.3"
equation "\"Depth\" = 2.2"
equation "\"d20\" = 4.3"
equation "\"MotorWidth\" = 24"
properties part number "BodyFront"
